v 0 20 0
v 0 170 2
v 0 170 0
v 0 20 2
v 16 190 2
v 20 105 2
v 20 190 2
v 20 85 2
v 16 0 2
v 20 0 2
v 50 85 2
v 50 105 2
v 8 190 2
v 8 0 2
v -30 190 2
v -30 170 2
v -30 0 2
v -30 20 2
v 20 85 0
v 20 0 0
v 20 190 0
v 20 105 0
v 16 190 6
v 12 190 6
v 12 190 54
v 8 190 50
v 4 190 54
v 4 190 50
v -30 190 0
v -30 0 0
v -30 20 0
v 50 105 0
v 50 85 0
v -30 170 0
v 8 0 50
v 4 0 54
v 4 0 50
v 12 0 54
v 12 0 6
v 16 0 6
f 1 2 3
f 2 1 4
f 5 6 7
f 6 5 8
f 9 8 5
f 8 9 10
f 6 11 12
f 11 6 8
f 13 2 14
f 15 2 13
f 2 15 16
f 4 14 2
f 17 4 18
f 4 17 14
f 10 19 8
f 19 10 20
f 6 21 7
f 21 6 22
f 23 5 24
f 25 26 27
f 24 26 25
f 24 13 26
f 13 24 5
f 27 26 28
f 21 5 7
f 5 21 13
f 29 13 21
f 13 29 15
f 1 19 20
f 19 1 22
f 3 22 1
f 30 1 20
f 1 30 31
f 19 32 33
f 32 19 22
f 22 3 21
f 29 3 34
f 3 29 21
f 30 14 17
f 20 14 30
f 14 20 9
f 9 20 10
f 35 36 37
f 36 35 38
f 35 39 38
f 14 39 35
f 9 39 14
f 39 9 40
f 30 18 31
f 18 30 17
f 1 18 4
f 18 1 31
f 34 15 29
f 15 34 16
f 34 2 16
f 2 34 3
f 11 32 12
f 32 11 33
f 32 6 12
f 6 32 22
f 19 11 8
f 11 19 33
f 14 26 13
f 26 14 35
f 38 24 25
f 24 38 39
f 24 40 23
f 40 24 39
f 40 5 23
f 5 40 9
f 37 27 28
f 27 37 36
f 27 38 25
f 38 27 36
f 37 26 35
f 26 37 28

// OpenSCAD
cube([20, 190, 2]);

translate([-30,0,0]) cube([30, 20, 2]);
translate([-30,170,0]) cube([30, 20, 2]);
translate([20,85,0]) cube([30, 20, 2]);

translate([8,0,2]) cube([4,190,50]);
translate([12,0,2]) cube([4,190,4]);
translate([4,0,50]) cube([8,190,4]);
